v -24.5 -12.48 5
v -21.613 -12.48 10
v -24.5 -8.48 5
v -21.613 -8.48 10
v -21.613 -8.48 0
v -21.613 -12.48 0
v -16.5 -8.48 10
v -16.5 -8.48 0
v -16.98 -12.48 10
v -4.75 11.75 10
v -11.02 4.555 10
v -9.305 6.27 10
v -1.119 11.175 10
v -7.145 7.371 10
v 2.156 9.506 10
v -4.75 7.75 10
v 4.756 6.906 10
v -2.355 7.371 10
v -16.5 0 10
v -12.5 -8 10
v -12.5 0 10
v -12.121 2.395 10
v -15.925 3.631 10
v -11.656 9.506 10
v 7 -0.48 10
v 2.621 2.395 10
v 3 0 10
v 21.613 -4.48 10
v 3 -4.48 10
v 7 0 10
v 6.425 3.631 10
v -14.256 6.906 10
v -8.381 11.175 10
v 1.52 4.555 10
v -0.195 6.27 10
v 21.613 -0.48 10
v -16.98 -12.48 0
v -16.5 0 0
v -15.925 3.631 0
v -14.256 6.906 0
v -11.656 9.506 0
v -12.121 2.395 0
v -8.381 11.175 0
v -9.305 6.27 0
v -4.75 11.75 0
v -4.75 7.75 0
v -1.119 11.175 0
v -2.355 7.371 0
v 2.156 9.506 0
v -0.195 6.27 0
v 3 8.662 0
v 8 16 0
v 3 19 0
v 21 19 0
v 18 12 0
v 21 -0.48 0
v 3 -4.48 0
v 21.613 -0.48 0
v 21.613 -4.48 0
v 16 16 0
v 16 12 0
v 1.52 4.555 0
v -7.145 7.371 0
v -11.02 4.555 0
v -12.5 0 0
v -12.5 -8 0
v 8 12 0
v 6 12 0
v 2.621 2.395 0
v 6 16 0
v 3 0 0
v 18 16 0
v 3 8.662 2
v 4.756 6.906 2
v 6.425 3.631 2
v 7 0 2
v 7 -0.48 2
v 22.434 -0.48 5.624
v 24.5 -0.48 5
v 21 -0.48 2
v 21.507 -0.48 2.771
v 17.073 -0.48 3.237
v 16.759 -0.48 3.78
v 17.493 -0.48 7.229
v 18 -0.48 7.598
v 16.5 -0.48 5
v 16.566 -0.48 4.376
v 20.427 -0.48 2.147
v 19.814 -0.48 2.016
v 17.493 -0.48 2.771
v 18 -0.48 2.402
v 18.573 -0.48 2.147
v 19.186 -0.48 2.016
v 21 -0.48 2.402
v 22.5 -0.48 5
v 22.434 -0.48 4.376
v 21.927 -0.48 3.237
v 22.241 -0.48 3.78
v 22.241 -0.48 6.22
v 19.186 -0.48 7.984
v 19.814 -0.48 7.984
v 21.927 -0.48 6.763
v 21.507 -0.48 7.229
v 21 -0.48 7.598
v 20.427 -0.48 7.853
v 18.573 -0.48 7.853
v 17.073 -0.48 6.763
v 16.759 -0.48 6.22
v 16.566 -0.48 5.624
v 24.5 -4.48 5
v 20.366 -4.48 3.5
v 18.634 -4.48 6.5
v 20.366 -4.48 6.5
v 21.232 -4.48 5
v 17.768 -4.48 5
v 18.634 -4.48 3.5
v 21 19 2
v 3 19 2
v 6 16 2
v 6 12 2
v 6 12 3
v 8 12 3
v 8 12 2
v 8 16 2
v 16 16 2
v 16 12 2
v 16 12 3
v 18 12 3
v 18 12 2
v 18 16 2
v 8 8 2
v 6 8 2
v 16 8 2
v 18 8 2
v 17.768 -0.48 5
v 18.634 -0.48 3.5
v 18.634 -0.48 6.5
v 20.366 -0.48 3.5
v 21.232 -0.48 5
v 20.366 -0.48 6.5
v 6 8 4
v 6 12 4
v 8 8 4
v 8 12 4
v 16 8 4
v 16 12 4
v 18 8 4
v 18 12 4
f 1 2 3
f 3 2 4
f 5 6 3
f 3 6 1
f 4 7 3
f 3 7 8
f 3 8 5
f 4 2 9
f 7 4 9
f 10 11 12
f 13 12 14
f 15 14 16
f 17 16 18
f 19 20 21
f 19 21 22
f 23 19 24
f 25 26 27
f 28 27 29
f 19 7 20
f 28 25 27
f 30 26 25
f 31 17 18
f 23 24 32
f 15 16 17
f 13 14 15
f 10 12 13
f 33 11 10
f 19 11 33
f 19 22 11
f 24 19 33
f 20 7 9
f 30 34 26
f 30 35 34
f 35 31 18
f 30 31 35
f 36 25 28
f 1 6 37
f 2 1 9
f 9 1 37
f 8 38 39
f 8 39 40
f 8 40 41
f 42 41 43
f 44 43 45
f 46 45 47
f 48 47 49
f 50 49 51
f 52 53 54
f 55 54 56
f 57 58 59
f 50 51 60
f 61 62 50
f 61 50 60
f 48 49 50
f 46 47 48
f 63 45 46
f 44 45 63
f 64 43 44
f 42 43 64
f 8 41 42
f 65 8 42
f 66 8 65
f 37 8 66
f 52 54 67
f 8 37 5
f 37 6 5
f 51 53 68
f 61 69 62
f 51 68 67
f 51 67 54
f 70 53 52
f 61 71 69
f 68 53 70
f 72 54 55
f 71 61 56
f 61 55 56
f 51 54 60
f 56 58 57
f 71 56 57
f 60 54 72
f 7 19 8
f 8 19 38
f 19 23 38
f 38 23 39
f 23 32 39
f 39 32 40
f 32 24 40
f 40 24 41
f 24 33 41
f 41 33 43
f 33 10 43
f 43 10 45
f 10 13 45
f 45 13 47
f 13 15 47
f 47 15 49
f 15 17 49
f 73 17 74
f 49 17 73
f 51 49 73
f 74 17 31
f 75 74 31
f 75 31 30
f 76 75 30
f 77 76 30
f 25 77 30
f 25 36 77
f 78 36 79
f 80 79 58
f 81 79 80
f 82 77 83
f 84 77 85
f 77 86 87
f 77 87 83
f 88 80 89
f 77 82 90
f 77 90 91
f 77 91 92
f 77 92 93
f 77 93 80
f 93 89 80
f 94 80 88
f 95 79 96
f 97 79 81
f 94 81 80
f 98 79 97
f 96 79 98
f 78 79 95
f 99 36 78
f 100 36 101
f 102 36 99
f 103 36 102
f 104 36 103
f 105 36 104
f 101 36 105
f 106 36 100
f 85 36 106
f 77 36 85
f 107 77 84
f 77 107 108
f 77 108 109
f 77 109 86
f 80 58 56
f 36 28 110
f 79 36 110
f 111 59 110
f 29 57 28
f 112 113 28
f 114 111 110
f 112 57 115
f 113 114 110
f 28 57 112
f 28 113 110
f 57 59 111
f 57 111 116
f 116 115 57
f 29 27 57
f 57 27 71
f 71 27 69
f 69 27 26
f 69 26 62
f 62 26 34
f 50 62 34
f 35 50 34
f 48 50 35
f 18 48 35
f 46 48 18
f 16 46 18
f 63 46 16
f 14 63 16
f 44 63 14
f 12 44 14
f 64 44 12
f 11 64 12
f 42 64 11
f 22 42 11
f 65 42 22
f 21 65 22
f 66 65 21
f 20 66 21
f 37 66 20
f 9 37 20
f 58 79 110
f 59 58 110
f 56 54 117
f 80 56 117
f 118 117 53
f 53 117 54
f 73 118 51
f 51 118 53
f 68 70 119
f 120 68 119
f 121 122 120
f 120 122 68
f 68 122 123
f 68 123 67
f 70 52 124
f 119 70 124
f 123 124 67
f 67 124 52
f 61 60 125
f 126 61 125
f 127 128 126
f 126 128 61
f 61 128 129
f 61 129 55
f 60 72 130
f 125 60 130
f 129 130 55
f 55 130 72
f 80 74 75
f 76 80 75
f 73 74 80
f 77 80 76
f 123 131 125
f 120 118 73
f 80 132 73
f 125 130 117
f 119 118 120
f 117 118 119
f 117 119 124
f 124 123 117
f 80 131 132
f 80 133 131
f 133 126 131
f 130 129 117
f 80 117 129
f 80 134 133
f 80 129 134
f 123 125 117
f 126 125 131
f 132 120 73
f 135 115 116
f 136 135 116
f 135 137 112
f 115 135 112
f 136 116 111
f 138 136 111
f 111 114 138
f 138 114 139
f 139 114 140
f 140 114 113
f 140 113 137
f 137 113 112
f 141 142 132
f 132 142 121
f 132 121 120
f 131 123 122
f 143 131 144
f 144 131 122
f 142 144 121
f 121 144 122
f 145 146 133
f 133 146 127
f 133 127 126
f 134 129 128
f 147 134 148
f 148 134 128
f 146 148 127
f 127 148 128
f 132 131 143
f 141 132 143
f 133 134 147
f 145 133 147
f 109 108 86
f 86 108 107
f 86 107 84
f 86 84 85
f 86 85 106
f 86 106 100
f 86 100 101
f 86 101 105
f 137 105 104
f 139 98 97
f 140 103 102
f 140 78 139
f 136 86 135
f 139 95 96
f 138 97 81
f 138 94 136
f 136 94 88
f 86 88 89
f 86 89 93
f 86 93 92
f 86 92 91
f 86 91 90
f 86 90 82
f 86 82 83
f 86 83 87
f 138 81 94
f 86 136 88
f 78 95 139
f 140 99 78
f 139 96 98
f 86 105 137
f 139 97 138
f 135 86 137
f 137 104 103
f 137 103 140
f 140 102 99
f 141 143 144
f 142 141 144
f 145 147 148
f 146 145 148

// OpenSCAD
include <wallace2.scad>;

mirror([0,1,0]) rotate ([0,0,0]) translate([0,0,0]) y_bearing_retainer2();

module y_bearing_retainer2(){

// mounting plate for stopswitch
mirror([0,0,1]){
difference(){
	union(){
  translate([3,-20+1,-2]) cube([18,20,2]);
  translate([5+1,-20+8,-2+2-4]) cube([2,4,4]);
  translate([10+5+1,-20+8,-2+2-4]) cube([2,4,4]);

}
  translate([5+1,-20+1+3,-2-1]) cube([2,4,5]);
  translate([10+5+1,-20+1+3,-2-1]) cube([2,4,5]);
}
}
// retainer itself

intersection() {
	difference() {
		linear_extrude(height = 10, convexity = 5) difference() {
			union() {
				intersection() {
					translate([-yz_motor_distance / 2 + bearing_size / 2, 0, 0]) circle(bearing_size / 2 + 4);
					translate([-yz_motor_distance / 2 + bearing_size / 2 - bearing_size / 2 - 4, -bearing_size, 0]) square([bearing_size + 8, bearing_size]);
				}
				translate([-yz_motor_distance / 2 + bearing_size / 2 - bearing_size / 2 - 4, 0, 0]) #square([bearing_size + 8, bearing_size * sqrt(2) / 4 - 1]);
				translate([10, bearing_size * sqrt(2) / 4 - 3, 0]) square([yz_motor_distance + motor_casing - motor_screw_spacing + 10, 4], center = true);
				// hook
				translate([-25, bearing_size * sqrt(2) / 4 - 3+8, 0]) square([yz_motor_distance + motor_casing - motor_screw_spacing + 10, 4], center = true);
				// hook to retainer
				translate([-11.5, bearing_size * sqrt(2) / 4 - 3+4, 0]) #square([10, 4], center = true);
			}
			translate([-yz_motor_distance / 2 + bearing_size / 2, 0, 0]) circle(bearing_size / 2);
			translate([-yz_motor_distance / 2 + bearing_size / 2 - bearing_size / 2, 0, 0]) square(bearing_size);
			translate([-yz_motor_distance / 2 + bearing_size / 2 - bearing_size / 2+4, 4, 0]) rotate([0,0,45]) #square(bearing_size);
		}
		//screw holes
		for(side = [1]) translate([side * (yz_motor_distance + motor_casing - motor_screw_spacing) / 2, 0, 5]) rotate(90) rotate([90, 0, 90]) {
			cylinder(r = m3_size * da6, h = bearing_size, center = true, $fn = 6);
			translate([0, 0, bearing_size * sqrt(2) / 4 - 5]) rotate([180, 0, 0]) cylinder(r = m3_size, h = bearing_size, $fn = 30);
		}
	}
	#translate([0, 0, 5]) rotate(90) rotate([90, 0, 90]) cylinder(r = (yz_motor_distance + motor_casing - motor_screw_spacing + 10) / 2, h = bearing_size + 10, center = true, $fn = 6);
}
}
